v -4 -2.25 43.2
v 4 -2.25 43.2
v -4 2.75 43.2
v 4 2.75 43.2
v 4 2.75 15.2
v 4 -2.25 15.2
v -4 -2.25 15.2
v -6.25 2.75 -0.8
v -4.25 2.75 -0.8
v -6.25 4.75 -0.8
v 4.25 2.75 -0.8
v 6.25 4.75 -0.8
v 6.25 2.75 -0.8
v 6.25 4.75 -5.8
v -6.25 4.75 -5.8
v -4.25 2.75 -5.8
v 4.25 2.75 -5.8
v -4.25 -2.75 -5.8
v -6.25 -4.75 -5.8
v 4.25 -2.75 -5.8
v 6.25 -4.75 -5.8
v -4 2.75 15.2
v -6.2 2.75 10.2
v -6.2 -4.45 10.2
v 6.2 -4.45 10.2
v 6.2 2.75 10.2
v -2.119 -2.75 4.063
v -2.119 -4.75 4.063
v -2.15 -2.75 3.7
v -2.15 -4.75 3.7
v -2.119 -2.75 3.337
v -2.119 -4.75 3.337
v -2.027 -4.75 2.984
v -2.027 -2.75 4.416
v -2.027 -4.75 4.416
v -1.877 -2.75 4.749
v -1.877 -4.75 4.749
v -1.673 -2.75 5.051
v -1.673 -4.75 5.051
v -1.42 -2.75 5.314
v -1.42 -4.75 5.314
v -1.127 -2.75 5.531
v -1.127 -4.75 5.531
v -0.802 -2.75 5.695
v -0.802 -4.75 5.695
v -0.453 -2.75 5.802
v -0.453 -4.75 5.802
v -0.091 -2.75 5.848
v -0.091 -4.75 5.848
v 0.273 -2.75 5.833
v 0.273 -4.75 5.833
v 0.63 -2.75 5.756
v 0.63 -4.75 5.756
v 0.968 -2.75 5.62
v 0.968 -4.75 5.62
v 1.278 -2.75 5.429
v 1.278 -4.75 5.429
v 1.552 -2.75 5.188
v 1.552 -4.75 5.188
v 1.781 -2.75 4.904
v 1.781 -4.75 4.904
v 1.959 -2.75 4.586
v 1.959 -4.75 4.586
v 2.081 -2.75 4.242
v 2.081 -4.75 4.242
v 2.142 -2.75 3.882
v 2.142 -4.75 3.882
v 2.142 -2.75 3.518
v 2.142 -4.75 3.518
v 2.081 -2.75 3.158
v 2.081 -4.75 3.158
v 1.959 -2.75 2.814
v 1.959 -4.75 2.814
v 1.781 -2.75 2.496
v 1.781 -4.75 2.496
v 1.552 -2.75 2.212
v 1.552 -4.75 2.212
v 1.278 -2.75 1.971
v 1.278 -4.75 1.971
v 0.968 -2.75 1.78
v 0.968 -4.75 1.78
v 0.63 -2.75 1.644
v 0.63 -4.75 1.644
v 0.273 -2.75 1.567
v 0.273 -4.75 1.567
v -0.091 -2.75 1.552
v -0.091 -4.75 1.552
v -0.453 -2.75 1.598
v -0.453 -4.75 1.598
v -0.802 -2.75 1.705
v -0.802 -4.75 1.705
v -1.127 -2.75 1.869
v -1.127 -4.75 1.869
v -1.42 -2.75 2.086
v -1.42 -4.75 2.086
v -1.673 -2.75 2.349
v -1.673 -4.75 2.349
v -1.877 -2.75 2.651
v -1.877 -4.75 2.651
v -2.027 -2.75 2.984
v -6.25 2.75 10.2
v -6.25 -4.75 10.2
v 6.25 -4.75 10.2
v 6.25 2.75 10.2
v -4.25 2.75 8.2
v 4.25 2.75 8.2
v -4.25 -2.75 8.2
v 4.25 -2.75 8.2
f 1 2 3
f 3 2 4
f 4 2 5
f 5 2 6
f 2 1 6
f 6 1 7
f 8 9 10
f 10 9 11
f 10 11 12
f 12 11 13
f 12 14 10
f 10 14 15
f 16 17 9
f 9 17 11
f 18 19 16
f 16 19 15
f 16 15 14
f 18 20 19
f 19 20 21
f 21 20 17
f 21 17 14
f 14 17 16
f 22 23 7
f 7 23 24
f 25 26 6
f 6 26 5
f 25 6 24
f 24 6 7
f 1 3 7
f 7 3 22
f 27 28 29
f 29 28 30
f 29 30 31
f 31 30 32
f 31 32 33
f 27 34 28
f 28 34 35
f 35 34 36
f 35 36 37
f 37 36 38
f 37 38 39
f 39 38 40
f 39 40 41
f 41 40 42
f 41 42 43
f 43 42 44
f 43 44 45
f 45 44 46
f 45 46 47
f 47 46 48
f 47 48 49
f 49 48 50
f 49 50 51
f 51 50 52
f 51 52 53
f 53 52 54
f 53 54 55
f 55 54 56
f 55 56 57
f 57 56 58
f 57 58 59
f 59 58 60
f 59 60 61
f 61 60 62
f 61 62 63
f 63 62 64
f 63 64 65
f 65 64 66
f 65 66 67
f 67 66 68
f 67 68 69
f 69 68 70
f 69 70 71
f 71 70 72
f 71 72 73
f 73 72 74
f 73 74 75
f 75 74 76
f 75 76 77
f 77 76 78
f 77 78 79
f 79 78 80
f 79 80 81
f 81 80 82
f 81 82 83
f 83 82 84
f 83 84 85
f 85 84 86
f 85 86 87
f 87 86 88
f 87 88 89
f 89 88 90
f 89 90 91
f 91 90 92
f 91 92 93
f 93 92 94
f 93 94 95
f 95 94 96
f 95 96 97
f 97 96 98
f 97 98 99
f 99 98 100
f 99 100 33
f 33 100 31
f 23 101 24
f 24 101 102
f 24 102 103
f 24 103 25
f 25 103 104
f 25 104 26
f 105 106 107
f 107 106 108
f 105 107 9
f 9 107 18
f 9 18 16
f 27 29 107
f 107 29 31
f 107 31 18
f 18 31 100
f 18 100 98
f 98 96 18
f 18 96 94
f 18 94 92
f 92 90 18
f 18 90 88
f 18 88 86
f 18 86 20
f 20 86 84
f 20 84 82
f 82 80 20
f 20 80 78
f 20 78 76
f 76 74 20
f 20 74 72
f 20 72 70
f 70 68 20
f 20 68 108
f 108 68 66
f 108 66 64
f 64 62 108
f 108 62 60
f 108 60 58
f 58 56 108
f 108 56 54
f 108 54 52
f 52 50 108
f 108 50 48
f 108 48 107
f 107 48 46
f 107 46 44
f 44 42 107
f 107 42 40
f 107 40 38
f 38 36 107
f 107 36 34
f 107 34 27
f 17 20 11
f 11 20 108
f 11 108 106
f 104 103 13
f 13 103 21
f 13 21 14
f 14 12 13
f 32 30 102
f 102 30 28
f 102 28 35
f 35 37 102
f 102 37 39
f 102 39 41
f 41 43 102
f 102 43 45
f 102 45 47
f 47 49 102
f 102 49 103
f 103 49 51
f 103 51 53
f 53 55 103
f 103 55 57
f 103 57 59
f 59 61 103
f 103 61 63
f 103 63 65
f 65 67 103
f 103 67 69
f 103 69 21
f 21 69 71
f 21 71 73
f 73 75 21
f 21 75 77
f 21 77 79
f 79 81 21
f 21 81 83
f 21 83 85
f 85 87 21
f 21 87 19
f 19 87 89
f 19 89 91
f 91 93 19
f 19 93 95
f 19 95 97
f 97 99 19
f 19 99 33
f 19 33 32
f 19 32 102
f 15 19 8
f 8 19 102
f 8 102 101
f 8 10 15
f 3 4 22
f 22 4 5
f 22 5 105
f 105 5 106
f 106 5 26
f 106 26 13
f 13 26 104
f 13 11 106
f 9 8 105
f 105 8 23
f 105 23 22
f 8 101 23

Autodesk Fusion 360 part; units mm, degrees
sketch "Sketch1" plane through (0, 0, 0) normal (0, 0, 1) x (1, 0, 0)
  line L0 (4.25, 2.75) -> (-4.25, 2.75)
  line L1 (-4.25, 2.75) -> (-4.25, -2.75)
  line L2 (-4.25, -2.75) -> (4.25, -2.75)
  line L3 (4.25, -2.75) -> (4.25, 2.75)
  line L4 (4.25, 2.75) -> (-4.25, -2.75) construction
  line L5 (-4.25, 2.75) -> (4.25, -2.75) construction
  line L6 (-6.25, -4.75) -> (6.25, -4.75)
  line L7 (6.25, -4.75) -> (6.25, 4.75)
  line L8 (6.25, 4.75) -> (-6.25, 4.75)
  line L9 (-6.25, 4.75) -> (-6.25, -4.75)
  line L10 (-4.25, 2.75) -> (-6.25, 2.75)
  line L11 (4.25, 2.75) -> (6.25, 2.75)
  dimension "d1" = 8.5
  dimension "d2" = 5.5
  dimension "d3" = 2
extrude "Extrude1" add sketch "Sketch1" along normal blind 8.2 contours L1 L2 L3 L6 L7 L9 L10 L11
sketch "Sketch2" plane through (0, 0, 8.2) normal (0, 0, 1) x (-1, 0, 0)
  line L0 (4.25, -2.75) -> (6.25, -2.75)
  line L1 (6.25, -2.75) -> (6.25, 4.75)
  line L2 (6.25, 4.75) -> (-6.25, 4.75)
  line L3 (-6.25, 4.75) -> (-6.25, -2.75)
  line L4 (-6.25, -2.75) -> (-4.25, -2.75)
  line L5 (-4.25, -2.75) -> (-4.25, 2.75)
  line L6 (-4.25, 2.75) -> (4.25, 2.75)
  line L7 (4.25, 2.75) -> (4.25, -2.75)
  line L8 (6.25, -2.75) -> (-6.25, -2.75)
  line L9 (-6.25, -2.75) -> (-6.25, 4.75)
  line L10 (-6.25, 4.75) -> (6.25, 4.75)
  line L11 (6.25, 4.75) -> (6.25, -2.75)
extrude "Extrude2" add sketch "Sketch2" along normal blind 2
sketch "Sketch4" plane through (0, 0, 10.2) normal (0, 0, 1) x (-1, 0, 0)
  line L0 (6.25, 4.75) -> (-6.25, 4.75)
  line L1 (-6.25, 4.75) -> (-6.25, -2.75)
  line L2 (-6.25, -2.75) -> (6.25, -2.75)
  line L3 (6.25, -2.75) -> (6.25, 4.75)
  line L4 (4, -2.75) -> (-4, -2.75)
  line L5 (-4, -2.75) -> (-4, 2.25)
  line L6 (-4, 2.25) -> (4, 2.25)
  line L7 (4, 2.25) -> (4, -2.75)
  line L8 (0, -2.75) -> (0, 4.75) construction
  dimension "d8" = 8
  dimension "d9" = 5
  dimension "d10" = 4
extrude "Extrude3" add sketch "Sketch4" along normal blind 43 contours L2 L4 L5 L6 L7
sketch "Sketch5" plane through (0, -4.75, 0) normal (0, -1, 0) x (1, 0, 0)
  line L0 (-6.25, 0) -> (6.25, 0)
  line L1 (6.25, 0) -> (6.25, 10.2)
  line L2 (6.25, 10.2) -> (-6.25, 10.2)
  line L3 (-6.25, 10.2) -> (-6.25, 0)
  circle A0 centre (0, 3.7) radius 2.15
  line L4 (-4.25, 8.2) -> (4.25, 8.2)
  dimension "d13" = 4.3
  dimension "d18" = 4.5
extrude "Extrude4" cut sketch "Sketch5" against normal blind 2 contours A0
chamfer "Chamfer1" distance 2.2 distance2 5 3 edges at (0, -2.25, 10.2) (4, 0.25, 10.2) (-4, 0.25, 10.2) measured on face at (-1.3333, -3.9167, 10.2) measured on face at (-1.3333, -3.9167, 10.2) measured on face at (-1.3333, -3.9167, 10.2)
extrude "Extrude5" add 1 faces at (-1.4167, -4.0833, 0) along direction (0, 0, -1) blind 0.8
extrude "Extrude6" add 1 faces at (-1.4167, -4.0833, -0.8) along direction (0, 0, -1) blind 5
sketch "Sketch6" plane through (0, 2.75, 0) normal (0, 1, 0) x (-1, 0, 0)
  line L0 (6.25, -5.8) -> (6.25, 10.2)
  line L1 (6.25, 10.2) -> (6.2, 10.2)
  line L2 (6.2, 10.2) -> (4, 15.2)
  line L3 (4, 15.2) -> (4, 53.2)
  line L4 (4, 53.2) -> (-4, 53.2)
  line L5 (-4, 53.2) -> (-4, 15.2)
  line L6 (-4, 15.2) -> (-6.2, 10.2)
  line L7 (-6.2, 10.2) -> (-6.25, 10.2)
  line L8 (-6.25, 10.2) -> (-6.25, -5.8)
  line L9 (-6.25, -5.8) -> (-4.25, -5.8)
  line L10 (-4.25, -5.8) -> (-4.25, 8.2)
  line L11 (-4.25, 8.2) -> (4.25, 8.2)
  line L12 (4.25, 8.2) -> (4.25, -5.8)
  line L13 (4.25, -5.8) -> (6.25, -5.8)
  line L14 (-6.25, -5.8) -> (6.25, -5.8)
  line L15 (6.25, -5.8) -> (6.25, -0.8)
  line L16 (6.25, -0.8) -> (-6.25, -0.8)
  line L17 (-6.25, -0.8) -> (-6.25, -5.8)
  dimension "d23" = 5
  dimension "d28" = 12.5
extrude "Extrude7" add sketch "Sketch6" along normal blind 2 contours L0 L12 L13 L14 L15 L16 | L10 L12 L14 L16 | L8 L9 L10 L14 L16 L17
extrude "Extrude8" cut 1 faces at (1.3333, 1.0833, 53.2) along direction (0, 0, -1) blind 10
equation "d18 = 2.35 mm + 2.15 mm"
